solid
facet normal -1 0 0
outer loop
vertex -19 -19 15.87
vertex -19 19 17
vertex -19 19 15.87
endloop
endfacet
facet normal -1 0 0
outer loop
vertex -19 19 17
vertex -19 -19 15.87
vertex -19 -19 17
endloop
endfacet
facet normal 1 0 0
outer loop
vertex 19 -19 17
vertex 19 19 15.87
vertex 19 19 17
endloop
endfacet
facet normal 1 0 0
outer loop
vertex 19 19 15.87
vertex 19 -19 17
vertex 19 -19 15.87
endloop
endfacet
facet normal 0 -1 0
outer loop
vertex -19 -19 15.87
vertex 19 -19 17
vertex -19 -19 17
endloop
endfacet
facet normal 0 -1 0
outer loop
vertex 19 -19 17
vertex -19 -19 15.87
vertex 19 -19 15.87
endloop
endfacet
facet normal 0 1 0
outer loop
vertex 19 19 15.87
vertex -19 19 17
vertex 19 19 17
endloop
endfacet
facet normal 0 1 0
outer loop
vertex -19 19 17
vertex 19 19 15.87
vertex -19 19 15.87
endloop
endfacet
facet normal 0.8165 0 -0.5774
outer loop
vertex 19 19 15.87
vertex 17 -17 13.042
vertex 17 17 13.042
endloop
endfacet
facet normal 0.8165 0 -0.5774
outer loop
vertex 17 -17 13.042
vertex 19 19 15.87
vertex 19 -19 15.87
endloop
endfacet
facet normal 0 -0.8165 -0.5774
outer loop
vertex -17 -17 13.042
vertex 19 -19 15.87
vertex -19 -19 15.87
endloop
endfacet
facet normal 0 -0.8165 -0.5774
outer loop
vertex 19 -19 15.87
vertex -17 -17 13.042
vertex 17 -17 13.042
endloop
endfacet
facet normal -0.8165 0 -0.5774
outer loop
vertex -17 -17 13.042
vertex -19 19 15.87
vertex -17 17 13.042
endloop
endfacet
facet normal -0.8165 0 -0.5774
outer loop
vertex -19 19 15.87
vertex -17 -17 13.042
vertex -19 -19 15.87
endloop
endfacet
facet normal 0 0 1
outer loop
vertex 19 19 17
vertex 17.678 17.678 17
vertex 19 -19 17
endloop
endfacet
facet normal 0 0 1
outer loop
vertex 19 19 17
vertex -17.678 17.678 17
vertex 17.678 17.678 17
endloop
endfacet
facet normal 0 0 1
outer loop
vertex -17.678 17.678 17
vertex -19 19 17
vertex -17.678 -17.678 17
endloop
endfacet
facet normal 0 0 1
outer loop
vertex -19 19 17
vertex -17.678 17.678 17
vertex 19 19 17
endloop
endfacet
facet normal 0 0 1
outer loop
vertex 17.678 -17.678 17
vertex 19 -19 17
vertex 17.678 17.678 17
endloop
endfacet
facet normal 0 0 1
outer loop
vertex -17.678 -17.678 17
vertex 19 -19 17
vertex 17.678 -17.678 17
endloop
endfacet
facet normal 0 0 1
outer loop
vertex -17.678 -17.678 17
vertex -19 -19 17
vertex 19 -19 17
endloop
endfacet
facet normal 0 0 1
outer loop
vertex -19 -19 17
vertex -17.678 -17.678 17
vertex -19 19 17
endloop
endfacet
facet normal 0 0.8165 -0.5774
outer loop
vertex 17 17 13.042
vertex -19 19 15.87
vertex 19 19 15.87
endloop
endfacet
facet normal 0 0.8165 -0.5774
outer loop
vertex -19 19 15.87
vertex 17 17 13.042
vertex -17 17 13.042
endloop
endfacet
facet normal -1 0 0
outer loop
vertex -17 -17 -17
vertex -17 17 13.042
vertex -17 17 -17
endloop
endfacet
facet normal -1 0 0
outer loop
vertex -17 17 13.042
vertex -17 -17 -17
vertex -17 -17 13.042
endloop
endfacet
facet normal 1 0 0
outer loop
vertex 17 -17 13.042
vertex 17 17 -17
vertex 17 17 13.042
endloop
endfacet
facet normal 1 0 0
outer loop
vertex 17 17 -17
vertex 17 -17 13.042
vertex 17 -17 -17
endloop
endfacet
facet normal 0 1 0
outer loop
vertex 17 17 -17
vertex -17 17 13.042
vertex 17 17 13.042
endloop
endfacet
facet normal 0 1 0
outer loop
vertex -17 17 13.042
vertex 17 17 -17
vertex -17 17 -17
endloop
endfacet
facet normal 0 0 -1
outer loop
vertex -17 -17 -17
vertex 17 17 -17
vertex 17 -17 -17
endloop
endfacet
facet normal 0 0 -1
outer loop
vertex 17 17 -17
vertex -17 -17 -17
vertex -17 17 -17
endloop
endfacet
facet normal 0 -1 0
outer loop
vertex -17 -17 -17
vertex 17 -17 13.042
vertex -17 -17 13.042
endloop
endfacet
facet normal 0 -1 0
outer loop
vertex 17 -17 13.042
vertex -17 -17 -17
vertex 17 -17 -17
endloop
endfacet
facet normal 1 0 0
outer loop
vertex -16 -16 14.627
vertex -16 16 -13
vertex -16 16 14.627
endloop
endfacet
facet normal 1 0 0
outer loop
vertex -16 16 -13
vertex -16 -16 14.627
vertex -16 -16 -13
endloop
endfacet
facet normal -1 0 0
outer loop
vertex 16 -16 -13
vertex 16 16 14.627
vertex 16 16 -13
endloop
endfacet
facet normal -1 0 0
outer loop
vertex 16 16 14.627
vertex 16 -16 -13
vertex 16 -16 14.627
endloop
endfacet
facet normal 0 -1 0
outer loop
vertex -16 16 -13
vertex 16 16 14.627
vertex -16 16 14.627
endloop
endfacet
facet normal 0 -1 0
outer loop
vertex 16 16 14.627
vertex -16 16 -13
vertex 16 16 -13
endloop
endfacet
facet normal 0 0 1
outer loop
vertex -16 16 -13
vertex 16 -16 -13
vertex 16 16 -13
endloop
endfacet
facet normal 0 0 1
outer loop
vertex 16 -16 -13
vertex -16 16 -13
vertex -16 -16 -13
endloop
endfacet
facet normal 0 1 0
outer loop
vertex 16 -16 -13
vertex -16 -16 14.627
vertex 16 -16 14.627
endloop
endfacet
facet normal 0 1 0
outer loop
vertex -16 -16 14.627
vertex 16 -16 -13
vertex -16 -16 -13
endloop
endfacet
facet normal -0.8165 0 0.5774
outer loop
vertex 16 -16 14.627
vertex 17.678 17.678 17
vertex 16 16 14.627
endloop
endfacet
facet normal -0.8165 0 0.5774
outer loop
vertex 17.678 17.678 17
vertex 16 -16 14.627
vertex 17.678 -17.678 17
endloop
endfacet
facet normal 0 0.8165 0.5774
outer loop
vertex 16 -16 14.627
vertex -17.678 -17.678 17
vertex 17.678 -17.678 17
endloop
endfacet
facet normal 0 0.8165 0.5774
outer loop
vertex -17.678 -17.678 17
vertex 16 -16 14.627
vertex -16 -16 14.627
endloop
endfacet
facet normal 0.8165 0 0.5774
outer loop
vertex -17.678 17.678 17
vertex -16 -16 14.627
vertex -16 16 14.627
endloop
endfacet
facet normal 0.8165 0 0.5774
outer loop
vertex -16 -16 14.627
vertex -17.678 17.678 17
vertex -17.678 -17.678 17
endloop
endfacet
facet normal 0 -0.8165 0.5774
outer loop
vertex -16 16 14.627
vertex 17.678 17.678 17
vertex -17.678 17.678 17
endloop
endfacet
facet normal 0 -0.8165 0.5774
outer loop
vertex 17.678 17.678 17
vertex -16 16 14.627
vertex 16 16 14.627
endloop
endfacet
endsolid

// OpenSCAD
// a small cup to measure out a consistent volume of salt for batch cooking
difference() {
    difference() {
        union(){
            // starting cube
            cube([34, 34, 34], true);
            difference(){
                // add top flared edge
                translate([0, 0, 17]) rotate([180, 0, 45]) cylinder(28,28,0,$fn=4);
                // trim outer sharp edge of flared edge
                difference(){
                    cube([42, 42, 50], true);
                    cube([38, 38, 52], true);
                }
            }
        }
        // remove inside volume:
        translate([0, 0, 4]) cube([32, 32, 34], true);
    }
    // remove inside of flared edge:
    translate([0, 0, 18]) rotate([180, 0, 45]) cylinder(26,26,0,$fn=4);
}
